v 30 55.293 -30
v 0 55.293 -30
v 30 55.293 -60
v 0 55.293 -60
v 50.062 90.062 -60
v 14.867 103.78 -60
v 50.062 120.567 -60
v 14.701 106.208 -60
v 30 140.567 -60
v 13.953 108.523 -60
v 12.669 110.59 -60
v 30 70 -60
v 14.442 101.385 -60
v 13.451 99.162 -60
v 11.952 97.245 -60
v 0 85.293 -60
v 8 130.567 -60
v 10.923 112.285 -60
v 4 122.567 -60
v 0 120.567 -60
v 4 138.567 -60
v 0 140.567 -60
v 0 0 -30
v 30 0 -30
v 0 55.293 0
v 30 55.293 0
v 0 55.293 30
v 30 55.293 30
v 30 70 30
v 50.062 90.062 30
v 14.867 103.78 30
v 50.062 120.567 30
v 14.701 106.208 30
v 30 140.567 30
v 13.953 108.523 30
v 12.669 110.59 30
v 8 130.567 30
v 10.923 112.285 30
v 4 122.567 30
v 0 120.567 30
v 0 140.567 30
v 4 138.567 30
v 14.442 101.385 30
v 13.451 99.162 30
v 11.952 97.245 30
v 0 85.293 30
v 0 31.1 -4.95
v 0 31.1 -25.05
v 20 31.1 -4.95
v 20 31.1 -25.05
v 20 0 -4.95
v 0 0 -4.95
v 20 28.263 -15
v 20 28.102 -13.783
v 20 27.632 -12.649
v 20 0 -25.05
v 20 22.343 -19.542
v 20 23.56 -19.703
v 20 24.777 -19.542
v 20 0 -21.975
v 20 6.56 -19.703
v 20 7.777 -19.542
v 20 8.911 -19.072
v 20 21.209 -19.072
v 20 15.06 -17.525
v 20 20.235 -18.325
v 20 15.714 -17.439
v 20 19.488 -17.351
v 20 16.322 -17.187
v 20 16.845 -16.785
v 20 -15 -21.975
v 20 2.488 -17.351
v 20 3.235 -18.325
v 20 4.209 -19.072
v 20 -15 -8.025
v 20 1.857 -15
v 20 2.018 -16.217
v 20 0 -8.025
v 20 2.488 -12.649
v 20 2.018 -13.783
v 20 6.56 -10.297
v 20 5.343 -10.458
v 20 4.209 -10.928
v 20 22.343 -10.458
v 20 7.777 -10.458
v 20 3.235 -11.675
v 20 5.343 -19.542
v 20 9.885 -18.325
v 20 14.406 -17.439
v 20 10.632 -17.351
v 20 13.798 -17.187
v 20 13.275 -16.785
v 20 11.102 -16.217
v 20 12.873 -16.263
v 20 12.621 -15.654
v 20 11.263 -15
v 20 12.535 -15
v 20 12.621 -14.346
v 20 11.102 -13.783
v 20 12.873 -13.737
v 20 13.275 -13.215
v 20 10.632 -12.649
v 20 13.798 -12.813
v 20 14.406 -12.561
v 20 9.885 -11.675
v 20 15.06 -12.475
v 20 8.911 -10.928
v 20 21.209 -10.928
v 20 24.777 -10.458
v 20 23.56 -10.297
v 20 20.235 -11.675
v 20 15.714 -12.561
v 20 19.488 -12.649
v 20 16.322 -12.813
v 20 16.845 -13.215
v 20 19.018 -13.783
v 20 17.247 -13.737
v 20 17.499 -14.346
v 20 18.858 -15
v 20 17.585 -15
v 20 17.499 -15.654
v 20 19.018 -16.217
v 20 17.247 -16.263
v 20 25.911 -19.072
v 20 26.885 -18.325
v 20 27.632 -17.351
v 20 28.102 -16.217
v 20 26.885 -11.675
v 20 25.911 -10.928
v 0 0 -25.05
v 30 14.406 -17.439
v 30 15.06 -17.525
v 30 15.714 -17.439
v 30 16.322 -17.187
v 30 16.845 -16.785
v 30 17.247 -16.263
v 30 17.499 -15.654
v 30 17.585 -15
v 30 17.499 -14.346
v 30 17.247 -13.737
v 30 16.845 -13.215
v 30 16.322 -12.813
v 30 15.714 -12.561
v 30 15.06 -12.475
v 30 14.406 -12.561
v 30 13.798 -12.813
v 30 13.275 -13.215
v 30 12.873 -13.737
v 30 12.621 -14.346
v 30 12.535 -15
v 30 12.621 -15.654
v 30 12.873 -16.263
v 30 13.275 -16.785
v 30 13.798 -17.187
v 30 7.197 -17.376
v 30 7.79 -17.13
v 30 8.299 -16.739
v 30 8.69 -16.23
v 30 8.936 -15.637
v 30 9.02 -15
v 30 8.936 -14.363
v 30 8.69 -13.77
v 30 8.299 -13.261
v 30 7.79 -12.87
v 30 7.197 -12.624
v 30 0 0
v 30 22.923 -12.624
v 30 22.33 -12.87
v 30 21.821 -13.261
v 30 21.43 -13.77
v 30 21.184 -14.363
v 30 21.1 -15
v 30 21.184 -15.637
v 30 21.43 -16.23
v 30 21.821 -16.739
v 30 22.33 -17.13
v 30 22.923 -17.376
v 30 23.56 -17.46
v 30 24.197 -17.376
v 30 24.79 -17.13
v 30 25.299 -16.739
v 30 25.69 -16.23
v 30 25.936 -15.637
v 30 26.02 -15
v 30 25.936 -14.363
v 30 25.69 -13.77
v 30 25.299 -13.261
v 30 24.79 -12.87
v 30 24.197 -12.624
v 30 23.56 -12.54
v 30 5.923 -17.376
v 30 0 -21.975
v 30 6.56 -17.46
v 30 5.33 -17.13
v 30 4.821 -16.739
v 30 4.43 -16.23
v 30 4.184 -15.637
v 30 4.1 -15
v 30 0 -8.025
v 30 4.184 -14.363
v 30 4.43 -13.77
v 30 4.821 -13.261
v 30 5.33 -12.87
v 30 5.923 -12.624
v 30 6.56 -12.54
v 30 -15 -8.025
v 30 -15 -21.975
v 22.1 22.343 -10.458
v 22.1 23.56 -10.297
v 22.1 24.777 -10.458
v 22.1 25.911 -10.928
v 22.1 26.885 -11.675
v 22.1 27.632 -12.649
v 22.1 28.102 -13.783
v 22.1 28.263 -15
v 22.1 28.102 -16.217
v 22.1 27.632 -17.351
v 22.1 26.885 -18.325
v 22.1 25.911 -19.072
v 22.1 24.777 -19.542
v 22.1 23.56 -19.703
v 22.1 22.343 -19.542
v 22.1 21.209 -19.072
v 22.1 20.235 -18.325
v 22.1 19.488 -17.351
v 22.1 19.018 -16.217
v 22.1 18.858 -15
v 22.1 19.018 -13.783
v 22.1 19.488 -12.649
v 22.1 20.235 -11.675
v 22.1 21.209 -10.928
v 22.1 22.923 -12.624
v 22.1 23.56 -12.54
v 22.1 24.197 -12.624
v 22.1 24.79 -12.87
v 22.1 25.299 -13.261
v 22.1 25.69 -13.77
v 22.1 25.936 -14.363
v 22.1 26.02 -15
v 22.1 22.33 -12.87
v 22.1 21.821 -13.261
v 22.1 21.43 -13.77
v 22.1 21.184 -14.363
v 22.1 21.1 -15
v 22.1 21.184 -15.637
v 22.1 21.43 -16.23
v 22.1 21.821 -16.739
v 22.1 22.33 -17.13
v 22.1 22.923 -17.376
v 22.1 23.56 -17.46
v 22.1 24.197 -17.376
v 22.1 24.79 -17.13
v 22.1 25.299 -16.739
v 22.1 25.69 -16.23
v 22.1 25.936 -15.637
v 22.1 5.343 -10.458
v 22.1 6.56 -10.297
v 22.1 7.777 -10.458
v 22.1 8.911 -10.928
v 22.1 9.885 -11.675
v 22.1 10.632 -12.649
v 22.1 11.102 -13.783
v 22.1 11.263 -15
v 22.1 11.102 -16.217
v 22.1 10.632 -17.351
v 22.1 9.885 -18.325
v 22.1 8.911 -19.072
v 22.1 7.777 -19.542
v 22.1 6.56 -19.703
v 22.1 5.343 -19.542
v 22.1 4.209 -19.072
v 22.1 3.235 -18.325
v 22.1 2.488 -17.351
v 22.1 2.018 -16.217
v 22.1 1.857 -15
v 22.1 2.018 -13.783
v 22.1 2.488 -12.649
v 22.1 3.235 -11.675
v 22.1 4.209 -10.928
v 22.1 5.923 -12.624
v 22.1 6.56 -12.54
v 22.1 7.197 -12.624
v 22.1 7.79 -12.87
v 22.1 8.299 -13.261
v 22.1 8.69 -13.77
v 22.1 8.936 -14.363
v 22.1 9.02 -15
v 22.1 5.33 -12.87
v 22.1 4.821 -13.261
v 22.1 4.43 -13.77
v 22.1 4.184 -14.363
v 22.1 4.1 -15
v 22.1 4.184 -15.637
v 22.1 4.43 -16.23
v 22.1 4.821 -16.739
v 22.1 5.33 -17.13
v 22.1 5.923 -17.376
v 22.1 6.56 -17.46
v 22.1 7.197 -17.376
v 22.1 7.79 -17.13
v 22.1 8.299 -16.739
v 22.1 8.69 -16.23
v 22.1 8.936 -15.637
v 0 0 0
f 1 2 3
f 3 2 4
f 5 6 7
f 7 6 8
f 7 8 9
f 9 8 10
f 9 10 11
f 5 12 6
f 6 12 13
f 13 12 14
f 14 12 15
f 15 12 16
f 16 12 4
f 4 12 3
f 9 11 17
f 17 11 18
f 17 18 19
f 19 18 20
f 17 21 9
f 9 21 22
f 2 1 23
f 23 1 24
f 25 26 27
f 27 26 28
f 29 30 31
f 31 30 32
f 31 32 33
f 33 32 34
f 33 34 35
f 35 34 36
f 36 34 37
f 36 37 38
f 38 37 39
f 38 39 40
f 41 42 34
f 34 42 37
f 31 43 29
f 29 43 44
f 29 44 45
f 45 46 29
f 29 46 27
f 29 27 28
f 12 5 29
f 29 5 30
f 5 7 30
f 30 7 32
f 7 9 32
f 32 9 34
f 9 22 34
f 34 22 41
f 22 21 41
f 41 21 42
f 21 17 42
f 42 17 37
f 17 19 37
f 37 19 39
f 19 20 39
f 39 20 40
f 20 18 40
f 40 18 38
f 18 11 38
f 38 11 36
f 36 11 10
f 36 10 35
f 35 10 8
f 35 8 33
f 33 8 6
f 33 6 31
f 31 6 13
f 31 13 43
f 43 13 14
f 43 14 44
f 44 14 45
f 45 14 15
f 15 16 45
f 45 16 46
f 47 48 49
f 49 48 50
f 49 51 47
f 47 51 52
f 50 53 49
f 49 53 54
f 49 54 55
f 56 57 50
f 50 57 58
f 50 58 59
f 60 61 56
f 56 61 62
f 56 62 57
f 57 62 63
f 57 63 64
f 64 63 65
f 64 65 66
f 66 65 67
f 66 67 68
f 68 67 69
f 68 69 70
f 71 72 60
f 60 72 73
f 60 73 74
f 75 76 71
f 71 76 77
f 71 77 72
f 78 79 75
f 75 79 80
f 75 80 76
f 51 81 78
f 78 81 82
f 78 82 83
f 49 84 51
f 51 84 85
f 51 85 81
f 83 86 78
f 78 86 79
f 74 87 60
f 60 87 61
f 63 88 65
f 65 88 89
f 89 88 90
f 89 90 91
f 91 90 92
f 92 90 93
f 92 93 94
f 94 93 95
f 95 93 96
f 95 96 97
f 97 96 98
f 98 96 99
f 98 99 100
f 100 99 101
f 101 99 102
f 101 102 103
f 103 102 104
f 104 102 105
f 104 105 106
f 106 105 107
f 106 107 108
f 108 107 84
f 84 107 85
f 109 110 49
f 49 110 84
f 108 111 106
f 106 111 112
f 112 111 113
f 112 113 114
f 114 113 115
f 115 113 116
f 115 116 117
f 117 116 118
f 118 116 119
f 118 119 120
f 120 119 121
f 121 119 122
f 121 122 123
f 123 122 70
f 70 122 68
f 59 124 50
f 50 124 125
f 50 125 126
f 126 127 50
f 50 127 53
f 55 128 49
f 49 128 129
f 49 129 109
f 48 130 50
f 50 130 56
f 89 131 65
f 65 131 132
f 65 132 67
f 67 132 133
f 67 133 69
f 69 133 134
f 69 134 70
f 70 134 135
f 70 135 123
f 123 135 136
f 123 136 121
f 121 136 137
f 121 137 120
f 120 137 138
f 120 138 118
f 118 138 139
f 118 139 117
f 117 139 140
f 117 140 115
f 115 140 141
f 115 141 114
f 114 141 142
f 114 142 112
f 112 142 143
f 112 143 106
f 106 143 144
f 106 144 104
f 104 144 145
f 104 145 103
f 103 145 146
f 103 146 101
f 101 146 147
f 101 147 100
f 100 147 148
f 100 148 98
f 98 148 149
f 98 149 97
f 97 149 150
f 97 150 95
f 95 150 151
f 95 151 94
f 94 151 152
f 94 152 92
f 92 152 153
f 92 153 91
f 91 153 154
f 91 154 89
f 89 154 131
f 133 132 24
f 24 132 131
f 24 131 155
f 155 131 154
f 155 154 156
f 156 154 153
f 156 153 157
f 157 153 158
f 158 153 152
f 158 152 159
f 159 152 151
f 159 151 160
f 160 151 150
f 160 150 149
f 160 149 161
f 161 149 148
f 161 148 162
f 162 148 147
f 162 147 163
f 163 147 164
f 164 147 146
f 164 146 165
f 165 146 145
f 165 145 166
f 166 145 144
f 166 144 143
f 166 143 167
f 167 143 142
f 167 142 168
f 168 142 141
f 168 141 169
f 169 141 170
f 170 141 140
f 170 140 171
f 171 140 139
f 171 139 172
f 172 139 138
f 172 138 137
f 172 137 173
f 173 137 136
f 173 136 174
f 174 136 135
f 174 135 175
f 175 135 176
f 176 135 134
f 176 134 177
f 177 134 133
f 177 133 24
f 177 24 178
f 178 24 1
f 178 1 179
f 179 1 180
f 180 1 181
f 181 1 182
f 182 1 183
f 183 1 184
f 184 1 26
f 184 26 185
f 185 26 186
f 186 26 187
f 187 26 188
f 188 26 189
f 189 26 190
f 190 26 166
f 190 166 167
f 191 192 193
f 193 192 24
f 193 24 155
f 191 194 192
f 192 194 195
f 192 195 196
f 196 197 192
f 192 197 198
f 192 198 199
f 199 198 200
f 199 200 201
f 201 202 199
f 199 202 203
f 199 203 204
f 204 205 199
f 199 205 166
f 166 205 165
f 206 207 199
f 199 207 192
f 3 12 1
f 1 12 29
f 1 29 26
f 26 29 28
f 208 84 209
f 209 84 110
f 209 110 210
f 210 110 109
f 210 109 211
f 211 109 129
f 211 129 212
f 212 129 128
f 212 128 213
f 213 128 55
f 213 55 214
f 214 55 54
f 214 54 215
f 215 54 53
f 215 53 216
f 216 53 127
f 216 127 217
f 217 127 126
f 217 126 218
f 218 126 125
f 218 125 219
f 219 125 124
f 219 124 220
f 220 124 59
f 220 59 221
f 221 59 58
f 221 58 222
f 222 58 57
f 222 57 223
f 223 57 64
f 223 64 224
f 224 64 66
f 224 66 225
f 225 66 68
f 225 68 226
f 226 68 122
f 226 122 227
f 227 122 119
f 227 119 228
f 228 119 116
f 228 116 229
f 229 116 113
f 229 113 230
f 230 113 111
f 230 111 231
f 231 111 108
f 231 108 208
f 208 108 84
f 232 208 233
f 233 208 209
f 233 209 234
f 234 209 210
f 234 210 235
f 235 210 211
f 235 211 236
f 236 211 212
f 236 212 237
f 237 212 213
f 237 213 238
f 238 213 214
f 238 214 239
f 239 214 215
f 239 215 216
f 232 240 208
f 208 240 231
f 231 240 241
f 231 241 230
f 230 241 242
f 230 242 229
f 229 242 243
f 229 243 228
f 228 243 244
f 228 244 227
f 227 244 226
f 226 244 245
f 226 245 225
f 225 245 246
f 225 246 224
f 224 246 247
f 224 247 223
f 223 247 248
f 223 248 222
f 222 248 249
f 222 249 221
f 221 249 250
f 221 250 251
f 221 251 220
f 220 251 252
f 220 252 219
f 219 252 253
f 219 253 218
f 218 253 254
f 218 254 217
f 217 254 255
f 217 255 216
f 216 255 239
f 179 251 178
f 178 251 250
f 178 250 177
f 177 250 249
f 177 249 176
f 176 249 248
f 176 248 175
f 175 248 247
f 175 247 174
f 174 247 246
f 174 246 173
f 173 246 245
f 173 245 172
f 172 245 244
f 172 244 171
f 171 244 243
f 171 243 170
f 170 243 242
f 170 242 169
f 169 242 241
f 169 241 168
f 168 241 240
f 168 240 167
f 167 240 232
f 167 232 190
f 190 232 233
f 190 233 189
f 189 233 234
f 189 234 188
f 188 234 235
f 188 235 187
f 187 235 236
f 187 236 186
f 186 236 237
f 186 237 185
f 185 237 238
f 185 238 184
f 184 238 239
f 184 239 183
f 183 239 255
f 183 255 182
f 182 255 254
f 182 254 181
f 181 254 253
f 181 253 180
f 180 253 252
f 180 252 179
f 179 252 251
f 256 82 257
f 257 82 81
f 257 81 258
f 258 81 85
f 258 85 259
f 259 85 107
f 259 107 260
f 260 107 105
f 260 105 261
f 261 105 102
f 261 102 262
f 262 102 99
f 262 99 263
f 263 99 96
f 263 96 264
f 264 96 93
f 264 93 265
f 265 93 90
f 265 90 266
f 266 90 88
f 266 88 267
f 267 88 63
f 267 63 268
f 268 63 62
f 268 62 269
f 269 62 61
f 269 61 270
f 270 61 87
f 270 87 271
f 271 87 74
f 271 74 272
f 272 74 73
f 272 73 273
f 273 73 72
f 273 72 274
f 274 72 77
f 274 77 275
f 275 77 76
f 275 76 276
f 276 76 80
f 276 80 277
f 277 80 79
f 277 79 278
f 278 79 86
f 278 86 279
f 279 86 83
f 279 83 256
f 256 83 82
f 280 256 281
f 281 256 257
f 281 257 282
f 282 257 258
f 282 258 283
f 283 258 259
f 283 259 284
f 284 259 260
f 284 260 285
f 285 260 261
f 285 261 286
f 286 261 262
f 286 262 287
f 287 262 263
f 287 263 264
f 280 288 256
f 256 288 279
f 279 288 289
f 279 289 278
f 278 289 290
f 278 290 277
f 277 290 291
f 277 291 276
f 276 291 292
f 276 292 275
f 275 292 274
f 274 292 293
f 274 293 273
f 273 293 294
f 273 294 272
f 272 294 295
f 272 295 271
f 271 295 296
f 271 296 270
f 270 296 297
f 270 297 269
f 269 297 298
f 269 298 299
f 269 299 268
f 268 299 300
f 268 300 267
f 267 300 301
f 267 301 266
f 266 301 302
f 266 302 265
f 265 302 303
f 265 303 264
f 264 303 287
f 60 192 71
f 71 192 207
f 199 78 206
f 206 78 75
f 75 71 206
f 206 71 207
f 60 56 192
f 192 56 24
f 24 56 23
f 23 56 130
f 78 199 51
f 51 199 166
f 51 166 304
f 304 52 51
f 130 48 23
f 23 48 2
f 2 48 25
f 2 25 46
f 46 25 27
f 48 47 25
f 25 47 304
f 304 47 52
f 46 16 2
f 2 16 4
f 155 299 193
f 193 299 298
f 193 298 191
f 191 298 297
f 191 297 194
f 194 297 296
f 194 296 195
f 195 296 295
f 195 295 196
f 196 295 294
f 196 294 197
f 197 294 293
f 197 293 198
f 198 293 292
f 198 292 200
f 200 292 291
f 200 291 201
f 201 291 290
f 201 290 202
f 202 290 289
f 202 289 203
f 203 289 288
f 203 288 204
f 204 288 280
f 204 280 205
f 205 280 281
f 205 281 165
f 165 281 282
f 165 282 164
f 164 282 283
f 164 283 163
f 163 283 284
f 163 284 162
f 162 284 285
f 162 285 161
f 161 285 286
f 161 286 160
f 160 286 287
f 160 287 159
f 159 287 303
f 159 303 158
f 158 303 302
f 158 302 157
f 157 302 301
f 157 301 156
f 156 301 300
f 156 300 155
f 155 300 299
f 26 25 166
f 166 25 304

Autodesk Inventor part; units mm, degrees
ref_plane "YZ Plane" through (0, 0, 0) normal (1, 0, 0) x (0, 1, 0)
ref_plane "XZ Plane" through (0, 0, 0) normal (0, 1, 0) x (-1, 0, 0)
sketch "Sketch1" plane through (0, 0, 0) normal (0, 0, 1) x (1, 0, 0)
  line L0 (0, 0) -> (25, 0)
  line L1 (25, 0) -> (25, 40)
  line L2 (25, 40) -> (0, 40)
  line L3 (0, 40) -> (0, 0)
  dimension "d1" = 25
  dimension "d2" = 40
  dimension "d3" = 25
extrude "Extrusion1" add sketch "Sketch1" against normal blind 30
sketch "Sketch2" plane through (25, 0, 0) normal (1, 0, 0) x (0, 0, -1)
  line L0 (0, 0) -> (30, 0) projected
  circle A0 centre (15, 6.56) radius 2.46
extrude "Extrusion2" cut sketch "Sketch2" against normal blind 30
sketch "Sketch3" plane through (0, 0, 0) normal (-1, 0, 0) x (0, 0, 1)
  line L0 (0, 0) -> (-30, 0) projected
  line L1 (-25.05, 0) -> (-4.95, 0)
  line L2 (-4.95, 0) -> (-4.95, 33.12)
  line L3 (-4.95, 33.12) -> (-25.05, 33.12)
  line L4 (-25.05, 33.12) -> (-25.05, 0)
  dimension "d11" = 20.1
extrude "Extrusion3" cut sketch "Sketch3" against normal blind 20
sketch "Sketch4" plane through (0, 0, 0) normal (0, -1, 0) x (1, 0, 0)
  line L0 (20, -4.95) -> (20, -25.05) projected
  line L1 (20, -15) -> (25, -15)
  line L2 (25, 0) -> (25, -30) projected
  line L3 (20, -8.025) -> (25, -8.025)
  line L4 (25, -8.025) -> (25, -21.975)
  line L5 (25, -21.975) -> (20, -21.975)
  line L6 (20, -21.975) -> (20, -8.025)
  line L7 (20, -8.025) -> (25, -21.975) construction
  line L8 (25, -8.025) -> (20, -21.975) construction
  line L9 (25, -12.54) -> (25, -17.46) projected
  point P0 (0, 0)
  point P1 (22.5, -15)
  dimension "d14" = 13.95
extrude "Extrusion4" add sketch "Sketch4" along normal blind 15
sketch "Sketch5" plane through (20, 0, 0) normal (-1, 0, 0) x (0, 0, 1)
  circle A0 centre (-15, 6.56) radius 2.46 projected
  circle A1 centre (-15, 6.56) radius 4.7025
  circle A2 centre (-15, 6.56) radius 2.46 projected
  circle A3 centre (-15, 6.56) radius 2.46
  point P0 (0, 0)
  dimension "d17" = 9.405
extrude "Extrusion5" cut sketch "Sketch5" against normal blind 2.1
sketch "Sketch6" plane through (25, 0, 0) normal (1, 0, 0) x (0, 0, -1)
  circle A0 centre (15, 6.56) radius 4.7025 projected
  line L0 (15, 6.56) -> (15, 23.56)
  circle A1 centre (15, 23.56) radius 2.46
  point P0 (0, 0)
  dimension "d20" = 17
  dimension "d21" = 4.92
extrude "Extrusion6" cut sketch "Sketch6" against normal blind 10 contours A1
sketch "Sketch7" plane through (20, 0, 0) normal (-1, 0, 0) x (0, 0, 1)
  circle A0 centre (-15, 23.56) radius 2.46 projected
  circle A1 centre (-15, 23.56) radius 4.7025
  point P0 (0, 0)
  dimension "d24" = 9.405
extrude "Extrusion7" cut sketch "Sketch7" against normal blind 2.1
sketch "Sketch9" plane through (25, 0, 0) normal (1, 0, 0) x (0, 0, -1)
  circle A0 centre (15, 6.56) radius 2.46 projected
  circle A1 centre (15, 6.56) radius 2.46
  circle A2 centre (15, 23.56) radius 2.46 projected
  circle A3 centre (15, 23.56) radius 2.46
  line L0 (30, 40) -> (30, 0) projected
  line L1 (30, 0) -> (30, 40)
  line L2 (30, 40) -> (0, 40)
  line L3 (0, 40) -> (0, 0)
  line L4 (0, 0) -> (8.025, 0) projected
  line L5 (21.975, 0) -> (21.975, -15)
  line L6 (21.975, -15) -> (8.025, -15)
  line L7 (8.025, -15) -> (8.025, 0)
  line L8 (0, 0) -> (8.025, 0)
  line L9 (21.975, 0) -> (30, 0)
extrude "Extrusion8" add sketch "Sketch9" along normal blind 5
sketch "Sketch10" plane through (0, 40, 0) normal (0, 1, 0) x (1, 0, 0)
  line L0 (0, 30) -> (30, 30) projected
  line L1 (30, 0) -> (0, 0) projected
  line L2 (0, 30) -> (30, 30)
  line L3 (30, 30) -> (30, 0)
  line L4 (30, 0) -> (0, 0)
  line L5 (0, 0) -> (0, 30)
extrude "Extrusion9" add sketch "Sketch10" along normal blind 30
sketch "Sketch12" plane through (30, 0, 0) normal (1, 0, 0) x (0, 0, -1)
  circle A0 centre (15, 6.56) radius 2.46 projected
  line L0 (15, 6.56) -> (15, 15.06)
  circle A1 centre (15, 15.06) radius 2.525
  point P0 (0, 0)
  dimension "d31" = 8.5
  dimension "d33" = 5.05
extrude "Extrusion10" cut sketch "Sketch12" against normal blind 30 contours A1
sketch "Sketch15" plane through (0, 0, -25.05) normal (-1, 0, 0) x (0, 0, 1)
  line L0 (0, 33.12) -> (20.1, 33.12) projected
  line L1 (20.1, 33.12) -> (20.1, 0) projected
  line L2 (0, 33.12) -> (20.1, 33.12)
  line L3 (20.1, 33.12) -> (20.1, 31.1)
  line L4 (20.1, 31.1) -> (0, 31.1)
  line L5 (0, 31.1) -> (0, 33.12)
  point P0 (25.05, 0)
  dimension "d57" = 2.02
extrude "Extrusion13" add sketch "Sketch15" against normal blind 20
sketch "Sketch17" plane through (0, 0, 0) normal (0, 0, 1) x (1, 0, 0)
  line L0 (0, 70) -> (30, 70) projected
  line L1 (30, 70) -> (50.0622, 90.0622)
  line L2 (30, 70) -> (80, 70) construction
  line L3 (11.9522, 97.2454) -> (0, 85.2932)
  line L4 (0, 70) -> (0, 85.2932)
  line L5 (0, 70) -> (0, 0) projected
  line L6 (0, 70) -> (30, 70)
  line L7 (10.923, 112.2849) -> (0, 120.567)
  line L8 (50.0622, 105.3553) -> (50.0622, 120.567)
  line L9 (50.0622, 105.3553) -> (50.0622, 90.0622)
  arc A0 (11.9522, 97.2454) -> (10.923, 112.2849) centre (4.8811, 104.3165) ccw
  line L10 (4, 138.567) -> (0, 140.567)
  line L11 (4, 122.567) -> (0, 120.567)
  line L12 (4, 122.567) -> (8, 130.567)
  line L13 (4, 138.567) -> (8, 130.567)
  line L14 (0, 140.567) -> (30, 140.567)
  line L15 (30, 140.567) -> (50.0622, 120.567)
  dimension "d61" = 45
  dimension "d62" = 32.0271
  dimension "d72" = 10
extrude "Extrusion14" add sketch "Sketch17" against normal blind 30
sketch "Sketch21" plane through (0, 0, 0) normal (0, 0, 1) x (1, 0, 0)
  line L0 (50.0622, 90.0622) -> (30, 70) projected
  line L1 (30, 70) -> (50.0622, 90.0622)
  line L2 (50.0622, 90.0622) -> (50.0622, 120.567) projected
  line L3 (50.0622, 90.0622) -> (50.0622, 120.567)
  line L4 (0, 140.567) -> (30, 140.567) projected
  line L5 (50.0622, 120.567) -> (30, 140.567)
  line L6 (30, 140.567) -> (0, 140.567)
  line L7 (4, 138.567) -> (0, 140.567) projected
  line L8 (0, 140.567) -> (4, 138.567)
  line L9 (8, 130.567) -> (4, 138.567) projected
  line L10 (4, 138.567) -> (8, 130.567)
  line L11 (4, 122.567) -> (8, 130.567) projected
  line L12 (8, 130.567) -> (4, 122.567)
  line L13 (0, 120.567) -> (4, 122.567) projected
  line L14 (4, 122.567) -> (0, 120.567)
  line L15 (10.923, 112.2849) -> (0, 120.567) projected
  line L16 (0, 120.567) -> (10.923, 112.2849)
  line L17 (0, 85.2932) -> (11.9522, 97.2454) projected
  line L18 (11.9522, 97.2454) -> (0, 85.2932)
  line L19 (0, 85.2932) -> (0, 55.2932)
  line L20 (0, 55.2932) -> (30, 55.2932)
  line L21 (30, 55.2932) -> (30, 70)
  arc A0 (11.9522, 97.2454) -> (10.923, 112.2849) centre (4.8811, 104.3165) ccw
  dimension "d79" = 30
  dimension "d81" = 30
extrude "Extrusion15" add sketch "Sketch21" along normal blind 30
ref_plane "Work Plane1" through (0, 0, -15) normal (0, 0, 1) x (1, 0, 0)
mirror "Mirror1" about plane through (0, 0, -15) normal (0, 0, 1) of "Extrusion15"
properties part number "rec_c_16mm_x_90mm"
